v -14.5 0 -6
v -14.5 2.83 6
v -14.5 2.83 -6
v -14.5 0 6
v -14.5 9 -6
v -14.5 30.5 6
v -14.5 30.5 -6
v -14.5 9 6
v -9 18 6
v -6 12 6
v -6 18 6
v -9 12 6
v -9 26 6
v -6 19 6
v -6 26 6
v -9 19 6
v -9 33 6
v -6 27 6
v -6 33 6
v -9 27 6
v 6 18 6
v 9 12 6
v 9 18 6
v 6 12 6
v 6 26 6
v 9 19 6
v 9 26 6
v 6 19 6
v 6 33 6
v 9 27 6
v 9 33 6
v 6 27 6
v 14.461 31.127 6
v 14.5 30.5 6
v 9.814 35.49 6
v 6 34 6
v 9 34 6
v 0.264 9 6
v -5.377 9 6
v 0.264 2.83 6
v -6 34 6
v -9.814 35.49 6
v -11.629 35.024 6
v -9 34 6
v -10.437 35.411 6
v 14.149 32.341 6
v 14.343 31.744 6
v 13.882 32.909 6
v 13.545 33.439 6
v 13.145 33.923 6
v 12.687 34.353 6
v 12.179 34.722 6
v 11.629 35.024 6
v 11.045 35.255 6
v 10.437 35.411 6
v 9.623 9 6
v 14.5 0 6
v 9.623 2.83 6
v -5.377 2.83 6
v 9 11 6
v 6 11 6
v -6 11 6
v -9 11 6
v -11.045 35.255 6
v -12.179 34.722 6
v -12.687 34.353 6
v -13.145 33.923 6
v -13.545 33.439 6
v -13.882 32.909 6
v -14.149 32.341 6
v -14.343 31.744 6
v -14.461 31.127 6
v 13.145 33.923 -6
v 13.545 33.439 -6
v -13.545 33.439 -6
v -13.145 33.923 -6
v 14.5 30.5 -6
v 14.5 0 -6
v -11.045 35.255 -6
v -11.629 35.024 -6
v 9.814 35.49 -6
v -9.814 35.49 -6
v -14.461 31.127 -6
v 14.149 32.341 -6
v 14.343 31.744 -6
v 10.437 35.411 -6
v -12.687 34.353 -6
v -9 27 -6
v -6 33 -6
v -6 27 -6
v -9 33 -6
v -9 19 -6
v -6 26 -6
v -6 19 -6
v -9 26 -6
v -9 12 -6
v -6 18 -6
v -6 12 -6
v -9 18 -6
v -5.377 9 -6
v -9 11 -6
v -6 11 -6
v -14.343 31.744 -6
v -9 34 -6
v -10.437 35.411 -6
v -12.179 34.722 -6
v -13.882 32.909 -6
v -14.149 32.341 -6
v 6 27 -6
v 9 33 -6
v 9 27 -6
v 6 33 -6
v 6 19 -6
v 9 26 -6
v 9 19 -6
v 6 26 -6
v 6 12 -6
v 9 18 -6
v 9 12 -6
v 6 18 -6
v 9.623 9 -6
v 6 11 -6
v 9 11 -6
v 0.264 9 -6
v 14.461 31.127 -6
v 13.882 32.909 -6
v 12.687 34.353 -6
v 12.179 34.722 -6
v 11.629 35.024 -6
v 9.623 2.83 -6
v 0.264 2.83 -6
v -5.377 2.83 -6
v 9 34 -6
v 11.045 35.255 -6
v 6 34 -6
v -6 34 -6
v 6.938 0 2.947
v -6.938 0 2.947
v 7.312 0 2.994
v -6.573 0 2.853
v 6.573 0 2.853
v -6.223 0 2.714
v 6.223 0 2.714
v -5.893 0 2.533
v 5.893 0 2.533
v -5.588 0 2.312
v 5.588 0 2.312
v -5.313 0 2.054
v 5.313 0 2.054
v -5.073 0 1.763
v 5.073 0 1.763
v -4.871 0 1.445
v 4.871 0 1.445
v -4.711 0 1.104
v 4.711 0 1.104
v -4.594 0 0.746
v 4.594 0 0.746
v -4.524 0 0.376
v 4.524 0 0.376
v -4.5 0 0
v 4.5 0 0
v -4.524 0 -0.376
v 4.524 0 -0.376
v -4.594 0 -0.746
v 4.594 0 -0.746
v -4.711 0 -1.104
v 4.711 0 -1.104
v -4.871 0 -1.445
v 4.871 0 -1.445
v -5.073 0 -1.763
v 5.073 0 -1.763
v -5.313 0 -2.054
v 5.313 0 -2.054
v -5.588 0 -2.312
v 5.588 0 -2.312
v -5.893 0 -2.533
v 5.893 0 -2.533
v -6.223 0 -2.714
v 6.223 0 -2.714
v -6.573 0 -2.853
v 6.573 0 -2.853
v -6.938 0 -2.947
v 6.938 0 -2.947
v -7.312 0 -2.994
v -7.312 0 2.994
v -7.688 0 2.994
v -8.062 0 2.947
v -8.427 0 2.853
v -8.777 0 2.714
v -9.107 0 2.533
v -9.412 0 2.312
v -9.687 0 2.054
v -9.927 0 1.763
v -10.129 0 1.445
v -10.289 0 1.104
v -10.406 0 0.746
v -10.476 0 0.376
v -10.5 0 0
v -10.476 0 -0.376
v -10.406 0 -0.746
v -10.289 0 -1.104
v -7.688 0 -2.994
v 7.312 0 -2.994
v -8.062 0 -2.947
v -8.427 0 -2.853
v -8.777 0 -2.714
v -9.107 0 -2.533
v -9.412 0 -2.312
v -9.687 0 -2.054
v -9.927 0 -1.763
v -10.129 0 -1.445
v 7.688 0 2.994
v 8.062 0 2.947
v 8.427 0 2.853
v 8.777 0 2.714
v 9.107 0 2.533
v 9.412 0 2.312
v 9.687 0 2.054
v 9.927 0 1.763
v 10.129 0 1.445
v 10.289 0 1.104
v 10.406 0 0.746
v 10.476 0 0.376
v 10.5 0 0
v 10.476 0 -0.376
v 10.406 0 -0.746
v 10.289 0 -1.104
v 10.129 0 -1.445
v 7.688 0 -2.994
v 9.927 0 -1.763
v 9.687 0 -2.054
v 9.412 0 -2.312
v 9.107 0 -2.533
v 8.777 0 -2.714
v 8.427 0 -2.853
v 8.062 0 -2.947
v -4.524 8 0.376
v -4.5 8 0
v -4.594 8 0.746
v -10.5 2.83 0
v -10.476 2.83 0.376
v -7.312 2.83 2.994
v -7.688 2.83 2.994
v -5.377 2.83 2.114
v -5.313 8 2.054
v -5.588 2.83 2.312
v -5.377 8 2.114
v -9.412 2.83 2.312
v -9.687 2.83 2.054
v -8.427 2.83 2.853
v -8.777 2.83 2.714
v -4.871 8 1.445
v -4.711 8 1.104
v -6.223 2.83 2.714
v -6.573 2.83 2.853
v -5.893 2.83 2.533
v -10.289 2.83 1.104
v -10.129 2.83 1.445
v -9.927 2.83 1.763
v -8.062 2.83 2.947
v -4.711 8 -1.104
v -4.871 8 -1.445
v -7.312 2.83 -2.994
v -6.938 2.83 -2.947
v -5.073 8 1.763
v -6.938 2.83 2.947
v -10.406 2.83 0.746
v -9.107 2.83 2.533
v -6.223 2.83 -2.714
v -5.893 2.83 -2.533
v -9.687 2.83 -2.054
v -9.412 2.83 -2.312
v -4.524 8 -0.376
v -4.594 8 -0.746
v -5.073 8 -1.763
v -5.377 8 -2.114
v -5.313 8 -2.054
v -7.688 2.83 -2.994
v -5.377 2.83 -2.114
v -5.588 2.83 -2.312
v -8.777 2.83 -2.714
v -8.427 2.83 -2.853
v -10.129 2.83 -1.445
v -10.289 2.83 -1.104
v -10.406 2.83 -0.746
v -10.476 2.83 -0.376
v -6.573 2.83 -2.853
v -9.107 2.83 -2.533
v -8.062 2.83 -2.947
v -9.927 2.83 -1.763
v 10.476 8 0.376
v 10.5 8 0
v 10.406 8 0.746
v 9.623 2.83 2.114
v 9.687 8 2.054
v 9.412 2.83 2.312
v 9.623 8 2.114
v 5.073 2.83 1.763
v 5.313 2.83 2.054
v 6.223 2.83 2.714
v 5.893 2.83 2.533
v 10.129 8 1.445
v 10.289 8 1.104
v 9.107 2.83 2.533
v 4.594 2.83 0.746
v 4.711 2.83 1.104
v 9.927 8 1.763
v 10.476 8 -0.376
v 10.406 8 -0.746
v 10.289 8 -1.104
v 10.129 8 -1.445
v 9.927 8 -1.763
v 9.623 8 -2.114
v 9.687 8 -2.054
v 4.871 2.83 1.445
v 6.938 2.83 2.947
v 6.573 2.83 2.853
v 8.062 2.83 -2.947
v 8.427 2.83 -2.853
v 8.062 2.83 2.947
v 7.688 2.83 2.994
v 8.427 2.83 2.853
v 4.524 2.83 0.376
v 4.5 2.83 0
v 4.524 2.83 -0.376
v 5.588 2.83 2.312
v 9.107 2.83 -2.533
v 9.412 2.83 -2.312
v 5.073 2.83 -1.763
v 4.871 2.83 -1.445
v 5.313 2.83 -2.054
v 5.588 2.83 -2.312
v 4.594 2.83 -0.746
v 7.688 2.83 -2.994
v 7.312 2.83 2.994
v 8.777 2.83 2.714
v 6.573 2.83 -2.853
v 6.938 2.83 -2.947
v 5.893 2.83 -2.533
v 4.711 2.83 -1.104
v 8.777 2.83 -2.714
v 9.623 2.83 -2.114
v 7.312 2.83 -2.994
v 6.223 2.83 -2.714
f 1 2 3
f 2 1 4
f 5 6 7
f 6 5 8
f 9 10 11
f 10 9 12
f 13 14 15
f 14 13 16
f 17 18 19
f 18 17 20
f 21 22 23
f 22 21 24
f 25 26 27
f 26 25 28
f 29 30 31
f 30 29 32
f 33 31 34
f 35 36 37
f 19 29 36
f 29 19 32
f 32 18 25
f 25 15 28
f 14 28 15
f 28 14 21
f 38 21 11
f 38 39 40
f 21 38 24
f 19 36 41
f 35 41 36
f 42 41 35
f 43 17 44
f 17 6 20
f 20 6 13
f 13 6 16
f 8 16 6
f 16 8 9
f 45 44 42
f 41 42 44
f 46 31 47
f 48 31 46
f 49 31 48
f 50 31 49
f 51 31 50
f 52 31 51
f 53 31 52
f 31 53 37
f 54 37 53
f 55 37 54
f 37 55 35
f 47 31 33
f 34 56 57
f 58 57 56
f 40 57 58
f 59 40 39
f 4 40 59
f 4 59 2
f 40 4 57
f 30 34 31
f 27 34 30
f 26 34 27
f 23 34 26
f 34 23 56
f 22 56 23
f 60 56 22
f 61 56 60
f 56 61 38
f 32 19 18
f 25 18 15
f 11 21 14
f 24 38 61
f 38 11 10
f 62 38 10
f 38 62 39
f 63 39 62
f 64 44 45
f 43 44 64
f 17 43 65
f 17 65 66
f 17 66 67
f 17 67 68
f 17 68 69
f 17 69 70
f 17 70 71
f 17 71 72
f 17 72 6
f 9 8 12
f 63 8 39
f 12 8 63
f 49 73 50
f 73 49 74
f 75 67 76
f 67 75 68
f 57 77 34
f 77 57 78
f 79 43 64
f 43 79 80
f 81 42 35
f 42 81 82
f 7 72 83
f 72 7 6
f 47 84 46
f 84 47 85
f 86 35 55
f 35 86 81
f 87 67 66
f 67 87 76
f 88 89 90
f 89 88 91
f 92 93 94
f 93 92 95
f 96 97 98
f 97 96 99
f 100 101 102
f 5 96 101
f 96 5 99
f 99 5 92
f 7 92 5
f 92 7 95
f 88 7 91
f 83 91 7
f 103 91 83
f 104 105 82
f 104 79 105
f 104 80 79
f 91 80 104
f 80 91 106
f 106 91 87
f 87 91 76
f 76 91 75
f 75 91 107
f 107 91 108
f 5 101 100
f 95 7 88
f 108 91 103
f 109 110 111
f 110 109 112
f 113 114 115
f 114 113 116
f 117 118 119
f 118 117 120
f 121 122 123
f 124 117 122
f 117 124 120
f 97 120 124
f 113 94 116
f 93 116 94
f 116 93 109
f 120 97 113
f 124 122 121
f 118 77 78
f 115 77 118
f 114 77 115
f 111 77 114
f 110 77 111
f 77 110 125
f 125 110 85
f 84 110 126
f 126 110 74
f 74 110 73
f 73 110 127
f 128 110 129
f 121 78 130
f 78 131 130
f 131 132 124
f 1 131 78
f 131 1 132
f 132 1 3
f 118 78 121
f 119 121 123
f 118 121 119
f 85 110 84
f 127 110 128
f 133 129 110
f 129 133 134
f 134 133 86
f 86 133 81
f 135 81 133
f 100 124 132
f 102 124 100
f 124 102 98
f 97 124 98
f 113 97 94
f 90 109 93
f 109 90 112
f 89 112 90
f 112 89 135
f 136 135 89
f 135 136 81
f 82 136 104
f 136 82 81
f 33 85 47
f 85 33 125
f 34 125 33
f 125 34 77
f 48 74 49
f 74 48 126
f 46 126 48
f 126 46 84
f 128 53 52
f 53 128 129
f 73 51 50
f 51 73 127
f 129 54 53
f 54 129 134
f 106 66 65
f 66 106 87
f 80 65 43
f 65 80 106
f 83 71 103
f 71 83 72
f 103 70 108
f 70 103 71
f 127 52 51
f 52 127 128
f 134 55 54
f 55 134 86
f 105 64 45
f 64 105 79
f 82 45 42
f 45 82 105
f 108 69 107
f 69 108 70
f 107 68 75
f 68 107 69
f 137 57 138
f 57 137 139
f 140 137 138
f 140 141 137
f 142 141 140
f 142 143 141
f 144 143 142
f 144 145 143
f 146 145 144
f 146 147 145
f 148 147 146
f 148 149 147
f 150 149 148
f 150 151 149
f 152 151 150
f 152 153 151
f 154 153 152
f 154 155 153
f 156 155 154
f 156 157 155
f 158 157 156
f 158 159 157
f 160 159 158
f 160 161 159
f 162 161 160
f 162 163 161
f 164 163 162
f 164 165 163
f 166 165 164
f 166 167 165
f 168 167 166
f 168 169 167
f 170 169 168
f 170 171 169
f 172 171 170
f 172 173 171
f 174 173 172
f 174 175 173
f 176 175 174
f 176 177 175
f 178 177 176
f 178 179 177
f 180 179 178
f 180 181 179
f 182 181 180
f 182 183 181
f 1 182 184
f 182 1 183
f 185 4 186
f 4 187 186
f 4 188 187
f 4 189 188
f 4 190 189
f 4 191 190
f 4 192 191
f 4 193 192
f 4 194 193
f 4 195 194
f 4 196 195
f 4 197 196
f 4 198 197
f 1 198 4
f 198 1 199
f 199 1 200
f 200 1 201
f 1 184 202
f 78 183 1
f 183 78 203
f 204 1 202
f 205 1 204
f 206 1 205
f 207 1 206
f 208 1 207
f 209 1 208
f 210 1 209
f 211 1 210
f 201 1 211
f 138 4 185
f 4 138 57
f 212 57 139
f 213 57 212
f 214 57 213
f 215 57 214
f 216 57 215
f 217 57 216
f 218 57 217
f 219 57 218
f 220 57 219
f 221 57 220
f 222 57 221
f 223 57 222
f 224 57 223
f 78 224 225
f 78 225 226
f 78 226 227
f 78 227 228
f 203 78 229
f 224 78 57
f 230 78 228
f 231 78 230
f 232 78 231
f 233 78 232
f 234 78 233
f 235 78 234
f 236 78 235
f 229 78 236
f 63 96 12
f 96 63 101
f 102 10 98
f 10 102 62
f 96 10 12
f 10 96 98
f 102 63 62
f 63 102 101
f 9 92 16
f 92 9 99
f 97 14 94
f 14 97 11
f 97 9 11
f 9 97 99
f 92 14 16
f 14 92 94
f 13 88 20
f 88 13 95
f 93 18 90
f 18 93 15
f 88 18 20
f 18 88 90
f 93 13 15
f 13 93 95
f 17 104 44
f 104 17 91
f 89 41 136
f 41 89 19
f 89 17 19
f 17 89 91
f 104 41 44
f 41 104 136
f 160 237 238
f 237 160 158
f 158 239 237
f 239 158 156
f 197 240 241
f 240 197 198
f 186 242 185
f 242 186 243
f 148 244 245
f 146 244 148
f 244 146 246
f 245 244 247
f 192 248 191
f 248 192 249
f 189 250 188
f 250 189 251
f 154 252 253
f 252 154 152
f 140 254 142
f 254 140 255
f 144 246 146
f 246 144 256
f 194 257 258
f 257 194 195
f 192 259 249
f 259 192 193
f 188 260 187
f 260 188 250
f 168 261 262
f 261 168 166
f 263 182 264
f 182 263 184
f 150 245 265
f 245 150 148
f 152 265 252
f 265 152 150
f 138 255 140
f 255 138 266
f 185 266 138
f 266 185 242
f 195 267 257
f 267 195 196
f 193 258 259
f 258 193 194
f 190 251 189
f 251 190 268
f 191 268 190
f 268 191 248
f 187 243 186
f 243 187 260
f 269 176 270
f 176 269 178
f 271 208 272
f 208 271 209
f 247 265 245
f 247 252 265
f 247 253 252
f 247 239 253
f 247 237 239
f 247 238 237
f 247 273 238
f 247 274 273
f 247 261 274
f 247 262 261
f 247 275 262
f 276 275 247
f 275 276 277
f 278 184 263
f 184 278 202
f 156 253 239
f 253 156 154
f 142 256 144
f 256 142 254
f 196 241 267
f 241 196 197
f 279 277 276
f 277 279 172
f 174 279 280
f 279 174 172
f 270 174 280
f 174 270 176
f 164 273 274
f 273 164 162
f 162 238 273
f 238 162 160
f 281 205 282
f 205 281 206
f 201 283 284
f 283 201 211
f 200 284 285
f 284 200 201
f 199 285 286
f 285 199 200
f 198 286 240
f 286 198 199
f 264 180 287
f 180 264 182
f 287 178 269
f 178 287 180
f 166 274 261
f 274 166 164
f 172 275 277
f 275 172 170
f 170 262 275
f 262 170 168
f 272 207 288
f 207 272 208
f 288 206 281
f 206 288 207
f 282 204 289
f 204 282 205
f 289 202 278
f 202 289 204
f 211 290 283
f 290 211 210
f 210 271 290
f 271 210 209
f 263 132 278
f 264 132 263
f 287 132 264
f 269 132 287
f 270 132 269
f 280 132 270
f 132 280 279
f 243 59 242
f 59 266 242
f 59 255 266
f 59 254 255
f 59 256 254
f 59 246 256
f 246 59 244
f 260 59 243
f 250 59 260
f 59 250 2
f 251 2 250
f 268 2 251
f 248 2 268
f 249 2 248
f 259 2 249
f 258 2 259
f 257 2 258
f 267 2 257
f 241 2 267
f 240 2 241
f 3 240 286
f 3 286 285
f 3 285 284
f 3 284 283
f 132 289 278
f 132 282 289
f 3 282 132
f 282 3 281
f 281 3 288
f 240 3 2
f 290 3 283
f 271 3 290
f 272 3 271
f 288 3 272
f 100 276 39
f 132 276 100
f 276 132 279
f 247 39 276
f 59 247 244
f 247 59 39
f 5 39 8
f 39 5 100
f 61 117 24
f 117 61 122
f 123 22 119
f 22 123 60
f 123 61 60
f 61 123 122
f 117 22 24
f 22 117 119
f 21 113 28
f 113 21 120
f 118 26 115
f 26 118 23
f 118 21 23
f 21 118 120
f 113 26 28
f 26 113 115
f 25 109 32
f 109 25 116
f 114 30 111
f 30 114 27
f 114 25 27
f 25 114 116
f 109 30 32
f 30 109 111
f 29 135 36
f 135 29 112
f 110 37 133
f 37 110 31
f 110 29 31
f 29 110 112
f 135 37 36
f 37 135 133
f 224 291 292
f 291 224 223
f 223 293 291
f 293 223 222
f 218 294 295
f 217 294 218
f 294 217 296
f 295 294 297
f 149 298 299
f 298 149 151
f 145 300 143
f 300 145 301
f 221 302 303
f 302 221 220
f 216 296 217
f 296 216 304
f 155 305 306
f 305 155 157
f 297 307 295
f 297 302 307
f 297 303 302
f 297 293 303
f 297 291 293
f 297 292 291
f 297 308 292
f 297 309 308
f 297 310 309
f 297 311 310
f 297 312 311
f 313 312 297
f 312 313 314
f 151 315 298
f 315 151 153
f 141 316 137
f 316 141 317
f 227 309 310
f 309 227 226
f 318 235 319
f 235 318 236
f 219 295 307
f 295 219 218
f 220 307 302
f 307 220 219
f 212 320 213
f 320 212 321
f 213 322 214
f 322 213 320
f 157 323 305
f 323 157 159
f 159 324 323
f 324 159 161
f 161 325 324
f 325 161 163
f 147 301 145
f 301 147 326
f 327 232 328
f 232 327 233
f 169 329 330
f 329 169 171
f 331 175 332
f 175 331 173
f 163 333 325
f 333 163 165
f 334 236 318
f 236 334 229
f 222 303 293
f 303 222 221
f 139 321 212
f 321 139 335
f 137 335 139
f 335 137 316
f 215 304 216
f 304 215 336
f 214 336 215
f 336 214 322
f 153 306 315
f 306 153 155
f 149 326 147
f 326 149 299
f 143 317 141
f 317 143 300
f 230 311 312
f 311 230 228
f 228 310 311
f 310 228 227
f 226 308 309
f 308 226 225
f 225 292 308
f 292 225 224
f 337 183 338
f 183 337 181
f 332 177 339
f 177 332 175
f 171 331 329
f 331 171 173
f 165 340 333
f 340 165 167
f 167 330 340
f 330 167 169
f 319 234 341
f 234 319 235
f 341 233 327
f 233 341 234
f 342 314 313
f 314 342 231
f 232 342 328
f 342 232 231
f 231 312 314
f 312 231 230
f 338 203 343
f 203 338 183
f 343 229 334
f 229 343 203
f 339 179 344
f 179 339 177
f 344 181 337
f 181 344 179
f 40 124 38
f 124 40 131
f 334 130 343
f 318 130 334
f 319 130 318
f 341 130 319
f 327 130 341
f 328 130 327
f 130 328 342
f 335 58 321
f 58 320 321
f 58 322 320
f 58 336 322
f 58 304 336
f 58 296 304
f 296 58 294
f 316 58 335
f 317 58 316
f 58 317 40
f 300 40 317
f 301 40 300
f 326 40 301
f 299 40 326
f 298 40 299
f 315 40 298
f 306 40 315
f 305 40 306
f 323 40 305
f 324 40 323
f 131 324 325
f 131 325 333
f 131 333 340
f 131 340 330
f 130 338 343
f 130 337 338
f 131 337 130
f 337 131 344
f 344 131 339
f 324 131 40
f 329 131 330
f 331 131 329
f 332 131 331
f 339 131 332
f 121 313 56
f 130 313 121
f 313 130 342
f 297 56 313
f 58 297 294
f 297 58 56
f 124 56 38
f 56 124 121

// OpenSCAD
$fn = 50;


difference() {
	union() {
		translate(v = [0, 21.0000000000, -6.0000000000]) {
			rotate(a = [0, 0, 0]) {
				hull() {
					translate(v = [-9.5000000000, 9.5000000000, 0]) {
						rotate(a = [0, 0, 0]) {
							translate(v = [0, 0, 0]) {
								rotate(a = [0, 0, 0]) {
									cylinder(h = 12, r = 5);
								}
							}
						}
					}
					translate(v = [9.5000000000, 9.5000000000, 0]) {
						rotate(a = [0, 0, 0]) {
							translate(v = [0, 0, 0]) {
								rotate(a = [0, 0, 0]) {
									cylinder(h = 12, r = 5);
								}
							}
						}
					}
					translate(v = [-9.5000000000, -9.5000000000, 0]) {
						rotate(a = [0, 0, 0]) {
							translate(v = [0, 0, 0]) {
								rotate(a = [0, 0, 0]) {
									cylinder(h = 12, r = 5);
								}
							}
						}
					}
					translate(v = [9.5000000000, -9.5000000000, 0]) {
						rotate(a = [0, 0, 0]) {
							translate(v = [0, 0, 0]) {
								rotate(a = [0, 0, 0]) {
									cylinder(h = 12, r = 5);
								}
							}
						}
					}
				}
			}
		}
		translate(v = [-14.5000000000, 0, -6.0000000000]) {
			rotate(a = [0, 0, 0]) {
				cube(size = [29, 13.5000000000, 12]);
			}
		}
	}
	union() {
		translate(v = [-9.0000000000, 11.0000000000, -50]) {
			rotate(a = [0, 0, 0]) {
				cube(size = [3, 1, 100]);
			}
		}
		translate(v = [-9.0000000000, 18.0000000000, -50]) {
			rotate(a = [0, 0, 0]) {
				cube(size = [3, 1, 100]);
			}
		}
		translate(v = [-9.0000000000, 26.0000000000, -50]) {
			rotate(a = [0, 0, 0]) {
				cube(size = [3, 1, 100]);
			}
		}
		translate(v = [-9.0000000000, 33.0000000000, -50]) {
			rotate(a = [0, 0, 0]) {
				cube(size = [3, 1, 100]);
			}
		}
		translate(v = [-7.5000000000, 8, 0]) {
			rotate(a = [90, 0, 0]) {
				cylinder(h = 8, r = 3.0000000000);
			}
		}
		translate(v = [-14.7357019064, 9, -75]) {
			rotate(a = [90, 0, 0]) {
				cube(size = [9.3587521664, 100, 6.1700000000]);
			}
		}
		translate(v = [6.0000000000, 11.0000000000, -50]) {
			rotate(a = [0, 0, 0]) {
				cube(size = [3, 1, 100]);
			}
		}
		translate(v = [6.0000000000, 18.0000000000, -50]) {
			rotate(a = [0, 0, 0]) {
				cube(size = [3, 1, 100]);
			}
		}
		translate(v = [6.0000000000, 26.0000000000, -50]) {
			rotate(a = [0, 0, 0]) {
				cube(size = [3, 1, 100]);
			}
		}
		translate(v = [6.0000000000, 33.0000000000, -50]) {
			rotate(a = [0, 0, 0]) {
				cube(size = [3, 1, 100]);
			}
		}
		translate(v = [7.5000000000, 8, 0]) {
			rotate(a = [90, 0, 0]) {
				cylinder(h = 8, r = 3.0000000000);
			}
		}
		translate(v = [0.2642980936, 9, -75]) {
			rotate(a = [90, 0, 0]) {
				cube(size = [9.3587521664, 100, 6.1700000000]);
			}
		}
	}
}
